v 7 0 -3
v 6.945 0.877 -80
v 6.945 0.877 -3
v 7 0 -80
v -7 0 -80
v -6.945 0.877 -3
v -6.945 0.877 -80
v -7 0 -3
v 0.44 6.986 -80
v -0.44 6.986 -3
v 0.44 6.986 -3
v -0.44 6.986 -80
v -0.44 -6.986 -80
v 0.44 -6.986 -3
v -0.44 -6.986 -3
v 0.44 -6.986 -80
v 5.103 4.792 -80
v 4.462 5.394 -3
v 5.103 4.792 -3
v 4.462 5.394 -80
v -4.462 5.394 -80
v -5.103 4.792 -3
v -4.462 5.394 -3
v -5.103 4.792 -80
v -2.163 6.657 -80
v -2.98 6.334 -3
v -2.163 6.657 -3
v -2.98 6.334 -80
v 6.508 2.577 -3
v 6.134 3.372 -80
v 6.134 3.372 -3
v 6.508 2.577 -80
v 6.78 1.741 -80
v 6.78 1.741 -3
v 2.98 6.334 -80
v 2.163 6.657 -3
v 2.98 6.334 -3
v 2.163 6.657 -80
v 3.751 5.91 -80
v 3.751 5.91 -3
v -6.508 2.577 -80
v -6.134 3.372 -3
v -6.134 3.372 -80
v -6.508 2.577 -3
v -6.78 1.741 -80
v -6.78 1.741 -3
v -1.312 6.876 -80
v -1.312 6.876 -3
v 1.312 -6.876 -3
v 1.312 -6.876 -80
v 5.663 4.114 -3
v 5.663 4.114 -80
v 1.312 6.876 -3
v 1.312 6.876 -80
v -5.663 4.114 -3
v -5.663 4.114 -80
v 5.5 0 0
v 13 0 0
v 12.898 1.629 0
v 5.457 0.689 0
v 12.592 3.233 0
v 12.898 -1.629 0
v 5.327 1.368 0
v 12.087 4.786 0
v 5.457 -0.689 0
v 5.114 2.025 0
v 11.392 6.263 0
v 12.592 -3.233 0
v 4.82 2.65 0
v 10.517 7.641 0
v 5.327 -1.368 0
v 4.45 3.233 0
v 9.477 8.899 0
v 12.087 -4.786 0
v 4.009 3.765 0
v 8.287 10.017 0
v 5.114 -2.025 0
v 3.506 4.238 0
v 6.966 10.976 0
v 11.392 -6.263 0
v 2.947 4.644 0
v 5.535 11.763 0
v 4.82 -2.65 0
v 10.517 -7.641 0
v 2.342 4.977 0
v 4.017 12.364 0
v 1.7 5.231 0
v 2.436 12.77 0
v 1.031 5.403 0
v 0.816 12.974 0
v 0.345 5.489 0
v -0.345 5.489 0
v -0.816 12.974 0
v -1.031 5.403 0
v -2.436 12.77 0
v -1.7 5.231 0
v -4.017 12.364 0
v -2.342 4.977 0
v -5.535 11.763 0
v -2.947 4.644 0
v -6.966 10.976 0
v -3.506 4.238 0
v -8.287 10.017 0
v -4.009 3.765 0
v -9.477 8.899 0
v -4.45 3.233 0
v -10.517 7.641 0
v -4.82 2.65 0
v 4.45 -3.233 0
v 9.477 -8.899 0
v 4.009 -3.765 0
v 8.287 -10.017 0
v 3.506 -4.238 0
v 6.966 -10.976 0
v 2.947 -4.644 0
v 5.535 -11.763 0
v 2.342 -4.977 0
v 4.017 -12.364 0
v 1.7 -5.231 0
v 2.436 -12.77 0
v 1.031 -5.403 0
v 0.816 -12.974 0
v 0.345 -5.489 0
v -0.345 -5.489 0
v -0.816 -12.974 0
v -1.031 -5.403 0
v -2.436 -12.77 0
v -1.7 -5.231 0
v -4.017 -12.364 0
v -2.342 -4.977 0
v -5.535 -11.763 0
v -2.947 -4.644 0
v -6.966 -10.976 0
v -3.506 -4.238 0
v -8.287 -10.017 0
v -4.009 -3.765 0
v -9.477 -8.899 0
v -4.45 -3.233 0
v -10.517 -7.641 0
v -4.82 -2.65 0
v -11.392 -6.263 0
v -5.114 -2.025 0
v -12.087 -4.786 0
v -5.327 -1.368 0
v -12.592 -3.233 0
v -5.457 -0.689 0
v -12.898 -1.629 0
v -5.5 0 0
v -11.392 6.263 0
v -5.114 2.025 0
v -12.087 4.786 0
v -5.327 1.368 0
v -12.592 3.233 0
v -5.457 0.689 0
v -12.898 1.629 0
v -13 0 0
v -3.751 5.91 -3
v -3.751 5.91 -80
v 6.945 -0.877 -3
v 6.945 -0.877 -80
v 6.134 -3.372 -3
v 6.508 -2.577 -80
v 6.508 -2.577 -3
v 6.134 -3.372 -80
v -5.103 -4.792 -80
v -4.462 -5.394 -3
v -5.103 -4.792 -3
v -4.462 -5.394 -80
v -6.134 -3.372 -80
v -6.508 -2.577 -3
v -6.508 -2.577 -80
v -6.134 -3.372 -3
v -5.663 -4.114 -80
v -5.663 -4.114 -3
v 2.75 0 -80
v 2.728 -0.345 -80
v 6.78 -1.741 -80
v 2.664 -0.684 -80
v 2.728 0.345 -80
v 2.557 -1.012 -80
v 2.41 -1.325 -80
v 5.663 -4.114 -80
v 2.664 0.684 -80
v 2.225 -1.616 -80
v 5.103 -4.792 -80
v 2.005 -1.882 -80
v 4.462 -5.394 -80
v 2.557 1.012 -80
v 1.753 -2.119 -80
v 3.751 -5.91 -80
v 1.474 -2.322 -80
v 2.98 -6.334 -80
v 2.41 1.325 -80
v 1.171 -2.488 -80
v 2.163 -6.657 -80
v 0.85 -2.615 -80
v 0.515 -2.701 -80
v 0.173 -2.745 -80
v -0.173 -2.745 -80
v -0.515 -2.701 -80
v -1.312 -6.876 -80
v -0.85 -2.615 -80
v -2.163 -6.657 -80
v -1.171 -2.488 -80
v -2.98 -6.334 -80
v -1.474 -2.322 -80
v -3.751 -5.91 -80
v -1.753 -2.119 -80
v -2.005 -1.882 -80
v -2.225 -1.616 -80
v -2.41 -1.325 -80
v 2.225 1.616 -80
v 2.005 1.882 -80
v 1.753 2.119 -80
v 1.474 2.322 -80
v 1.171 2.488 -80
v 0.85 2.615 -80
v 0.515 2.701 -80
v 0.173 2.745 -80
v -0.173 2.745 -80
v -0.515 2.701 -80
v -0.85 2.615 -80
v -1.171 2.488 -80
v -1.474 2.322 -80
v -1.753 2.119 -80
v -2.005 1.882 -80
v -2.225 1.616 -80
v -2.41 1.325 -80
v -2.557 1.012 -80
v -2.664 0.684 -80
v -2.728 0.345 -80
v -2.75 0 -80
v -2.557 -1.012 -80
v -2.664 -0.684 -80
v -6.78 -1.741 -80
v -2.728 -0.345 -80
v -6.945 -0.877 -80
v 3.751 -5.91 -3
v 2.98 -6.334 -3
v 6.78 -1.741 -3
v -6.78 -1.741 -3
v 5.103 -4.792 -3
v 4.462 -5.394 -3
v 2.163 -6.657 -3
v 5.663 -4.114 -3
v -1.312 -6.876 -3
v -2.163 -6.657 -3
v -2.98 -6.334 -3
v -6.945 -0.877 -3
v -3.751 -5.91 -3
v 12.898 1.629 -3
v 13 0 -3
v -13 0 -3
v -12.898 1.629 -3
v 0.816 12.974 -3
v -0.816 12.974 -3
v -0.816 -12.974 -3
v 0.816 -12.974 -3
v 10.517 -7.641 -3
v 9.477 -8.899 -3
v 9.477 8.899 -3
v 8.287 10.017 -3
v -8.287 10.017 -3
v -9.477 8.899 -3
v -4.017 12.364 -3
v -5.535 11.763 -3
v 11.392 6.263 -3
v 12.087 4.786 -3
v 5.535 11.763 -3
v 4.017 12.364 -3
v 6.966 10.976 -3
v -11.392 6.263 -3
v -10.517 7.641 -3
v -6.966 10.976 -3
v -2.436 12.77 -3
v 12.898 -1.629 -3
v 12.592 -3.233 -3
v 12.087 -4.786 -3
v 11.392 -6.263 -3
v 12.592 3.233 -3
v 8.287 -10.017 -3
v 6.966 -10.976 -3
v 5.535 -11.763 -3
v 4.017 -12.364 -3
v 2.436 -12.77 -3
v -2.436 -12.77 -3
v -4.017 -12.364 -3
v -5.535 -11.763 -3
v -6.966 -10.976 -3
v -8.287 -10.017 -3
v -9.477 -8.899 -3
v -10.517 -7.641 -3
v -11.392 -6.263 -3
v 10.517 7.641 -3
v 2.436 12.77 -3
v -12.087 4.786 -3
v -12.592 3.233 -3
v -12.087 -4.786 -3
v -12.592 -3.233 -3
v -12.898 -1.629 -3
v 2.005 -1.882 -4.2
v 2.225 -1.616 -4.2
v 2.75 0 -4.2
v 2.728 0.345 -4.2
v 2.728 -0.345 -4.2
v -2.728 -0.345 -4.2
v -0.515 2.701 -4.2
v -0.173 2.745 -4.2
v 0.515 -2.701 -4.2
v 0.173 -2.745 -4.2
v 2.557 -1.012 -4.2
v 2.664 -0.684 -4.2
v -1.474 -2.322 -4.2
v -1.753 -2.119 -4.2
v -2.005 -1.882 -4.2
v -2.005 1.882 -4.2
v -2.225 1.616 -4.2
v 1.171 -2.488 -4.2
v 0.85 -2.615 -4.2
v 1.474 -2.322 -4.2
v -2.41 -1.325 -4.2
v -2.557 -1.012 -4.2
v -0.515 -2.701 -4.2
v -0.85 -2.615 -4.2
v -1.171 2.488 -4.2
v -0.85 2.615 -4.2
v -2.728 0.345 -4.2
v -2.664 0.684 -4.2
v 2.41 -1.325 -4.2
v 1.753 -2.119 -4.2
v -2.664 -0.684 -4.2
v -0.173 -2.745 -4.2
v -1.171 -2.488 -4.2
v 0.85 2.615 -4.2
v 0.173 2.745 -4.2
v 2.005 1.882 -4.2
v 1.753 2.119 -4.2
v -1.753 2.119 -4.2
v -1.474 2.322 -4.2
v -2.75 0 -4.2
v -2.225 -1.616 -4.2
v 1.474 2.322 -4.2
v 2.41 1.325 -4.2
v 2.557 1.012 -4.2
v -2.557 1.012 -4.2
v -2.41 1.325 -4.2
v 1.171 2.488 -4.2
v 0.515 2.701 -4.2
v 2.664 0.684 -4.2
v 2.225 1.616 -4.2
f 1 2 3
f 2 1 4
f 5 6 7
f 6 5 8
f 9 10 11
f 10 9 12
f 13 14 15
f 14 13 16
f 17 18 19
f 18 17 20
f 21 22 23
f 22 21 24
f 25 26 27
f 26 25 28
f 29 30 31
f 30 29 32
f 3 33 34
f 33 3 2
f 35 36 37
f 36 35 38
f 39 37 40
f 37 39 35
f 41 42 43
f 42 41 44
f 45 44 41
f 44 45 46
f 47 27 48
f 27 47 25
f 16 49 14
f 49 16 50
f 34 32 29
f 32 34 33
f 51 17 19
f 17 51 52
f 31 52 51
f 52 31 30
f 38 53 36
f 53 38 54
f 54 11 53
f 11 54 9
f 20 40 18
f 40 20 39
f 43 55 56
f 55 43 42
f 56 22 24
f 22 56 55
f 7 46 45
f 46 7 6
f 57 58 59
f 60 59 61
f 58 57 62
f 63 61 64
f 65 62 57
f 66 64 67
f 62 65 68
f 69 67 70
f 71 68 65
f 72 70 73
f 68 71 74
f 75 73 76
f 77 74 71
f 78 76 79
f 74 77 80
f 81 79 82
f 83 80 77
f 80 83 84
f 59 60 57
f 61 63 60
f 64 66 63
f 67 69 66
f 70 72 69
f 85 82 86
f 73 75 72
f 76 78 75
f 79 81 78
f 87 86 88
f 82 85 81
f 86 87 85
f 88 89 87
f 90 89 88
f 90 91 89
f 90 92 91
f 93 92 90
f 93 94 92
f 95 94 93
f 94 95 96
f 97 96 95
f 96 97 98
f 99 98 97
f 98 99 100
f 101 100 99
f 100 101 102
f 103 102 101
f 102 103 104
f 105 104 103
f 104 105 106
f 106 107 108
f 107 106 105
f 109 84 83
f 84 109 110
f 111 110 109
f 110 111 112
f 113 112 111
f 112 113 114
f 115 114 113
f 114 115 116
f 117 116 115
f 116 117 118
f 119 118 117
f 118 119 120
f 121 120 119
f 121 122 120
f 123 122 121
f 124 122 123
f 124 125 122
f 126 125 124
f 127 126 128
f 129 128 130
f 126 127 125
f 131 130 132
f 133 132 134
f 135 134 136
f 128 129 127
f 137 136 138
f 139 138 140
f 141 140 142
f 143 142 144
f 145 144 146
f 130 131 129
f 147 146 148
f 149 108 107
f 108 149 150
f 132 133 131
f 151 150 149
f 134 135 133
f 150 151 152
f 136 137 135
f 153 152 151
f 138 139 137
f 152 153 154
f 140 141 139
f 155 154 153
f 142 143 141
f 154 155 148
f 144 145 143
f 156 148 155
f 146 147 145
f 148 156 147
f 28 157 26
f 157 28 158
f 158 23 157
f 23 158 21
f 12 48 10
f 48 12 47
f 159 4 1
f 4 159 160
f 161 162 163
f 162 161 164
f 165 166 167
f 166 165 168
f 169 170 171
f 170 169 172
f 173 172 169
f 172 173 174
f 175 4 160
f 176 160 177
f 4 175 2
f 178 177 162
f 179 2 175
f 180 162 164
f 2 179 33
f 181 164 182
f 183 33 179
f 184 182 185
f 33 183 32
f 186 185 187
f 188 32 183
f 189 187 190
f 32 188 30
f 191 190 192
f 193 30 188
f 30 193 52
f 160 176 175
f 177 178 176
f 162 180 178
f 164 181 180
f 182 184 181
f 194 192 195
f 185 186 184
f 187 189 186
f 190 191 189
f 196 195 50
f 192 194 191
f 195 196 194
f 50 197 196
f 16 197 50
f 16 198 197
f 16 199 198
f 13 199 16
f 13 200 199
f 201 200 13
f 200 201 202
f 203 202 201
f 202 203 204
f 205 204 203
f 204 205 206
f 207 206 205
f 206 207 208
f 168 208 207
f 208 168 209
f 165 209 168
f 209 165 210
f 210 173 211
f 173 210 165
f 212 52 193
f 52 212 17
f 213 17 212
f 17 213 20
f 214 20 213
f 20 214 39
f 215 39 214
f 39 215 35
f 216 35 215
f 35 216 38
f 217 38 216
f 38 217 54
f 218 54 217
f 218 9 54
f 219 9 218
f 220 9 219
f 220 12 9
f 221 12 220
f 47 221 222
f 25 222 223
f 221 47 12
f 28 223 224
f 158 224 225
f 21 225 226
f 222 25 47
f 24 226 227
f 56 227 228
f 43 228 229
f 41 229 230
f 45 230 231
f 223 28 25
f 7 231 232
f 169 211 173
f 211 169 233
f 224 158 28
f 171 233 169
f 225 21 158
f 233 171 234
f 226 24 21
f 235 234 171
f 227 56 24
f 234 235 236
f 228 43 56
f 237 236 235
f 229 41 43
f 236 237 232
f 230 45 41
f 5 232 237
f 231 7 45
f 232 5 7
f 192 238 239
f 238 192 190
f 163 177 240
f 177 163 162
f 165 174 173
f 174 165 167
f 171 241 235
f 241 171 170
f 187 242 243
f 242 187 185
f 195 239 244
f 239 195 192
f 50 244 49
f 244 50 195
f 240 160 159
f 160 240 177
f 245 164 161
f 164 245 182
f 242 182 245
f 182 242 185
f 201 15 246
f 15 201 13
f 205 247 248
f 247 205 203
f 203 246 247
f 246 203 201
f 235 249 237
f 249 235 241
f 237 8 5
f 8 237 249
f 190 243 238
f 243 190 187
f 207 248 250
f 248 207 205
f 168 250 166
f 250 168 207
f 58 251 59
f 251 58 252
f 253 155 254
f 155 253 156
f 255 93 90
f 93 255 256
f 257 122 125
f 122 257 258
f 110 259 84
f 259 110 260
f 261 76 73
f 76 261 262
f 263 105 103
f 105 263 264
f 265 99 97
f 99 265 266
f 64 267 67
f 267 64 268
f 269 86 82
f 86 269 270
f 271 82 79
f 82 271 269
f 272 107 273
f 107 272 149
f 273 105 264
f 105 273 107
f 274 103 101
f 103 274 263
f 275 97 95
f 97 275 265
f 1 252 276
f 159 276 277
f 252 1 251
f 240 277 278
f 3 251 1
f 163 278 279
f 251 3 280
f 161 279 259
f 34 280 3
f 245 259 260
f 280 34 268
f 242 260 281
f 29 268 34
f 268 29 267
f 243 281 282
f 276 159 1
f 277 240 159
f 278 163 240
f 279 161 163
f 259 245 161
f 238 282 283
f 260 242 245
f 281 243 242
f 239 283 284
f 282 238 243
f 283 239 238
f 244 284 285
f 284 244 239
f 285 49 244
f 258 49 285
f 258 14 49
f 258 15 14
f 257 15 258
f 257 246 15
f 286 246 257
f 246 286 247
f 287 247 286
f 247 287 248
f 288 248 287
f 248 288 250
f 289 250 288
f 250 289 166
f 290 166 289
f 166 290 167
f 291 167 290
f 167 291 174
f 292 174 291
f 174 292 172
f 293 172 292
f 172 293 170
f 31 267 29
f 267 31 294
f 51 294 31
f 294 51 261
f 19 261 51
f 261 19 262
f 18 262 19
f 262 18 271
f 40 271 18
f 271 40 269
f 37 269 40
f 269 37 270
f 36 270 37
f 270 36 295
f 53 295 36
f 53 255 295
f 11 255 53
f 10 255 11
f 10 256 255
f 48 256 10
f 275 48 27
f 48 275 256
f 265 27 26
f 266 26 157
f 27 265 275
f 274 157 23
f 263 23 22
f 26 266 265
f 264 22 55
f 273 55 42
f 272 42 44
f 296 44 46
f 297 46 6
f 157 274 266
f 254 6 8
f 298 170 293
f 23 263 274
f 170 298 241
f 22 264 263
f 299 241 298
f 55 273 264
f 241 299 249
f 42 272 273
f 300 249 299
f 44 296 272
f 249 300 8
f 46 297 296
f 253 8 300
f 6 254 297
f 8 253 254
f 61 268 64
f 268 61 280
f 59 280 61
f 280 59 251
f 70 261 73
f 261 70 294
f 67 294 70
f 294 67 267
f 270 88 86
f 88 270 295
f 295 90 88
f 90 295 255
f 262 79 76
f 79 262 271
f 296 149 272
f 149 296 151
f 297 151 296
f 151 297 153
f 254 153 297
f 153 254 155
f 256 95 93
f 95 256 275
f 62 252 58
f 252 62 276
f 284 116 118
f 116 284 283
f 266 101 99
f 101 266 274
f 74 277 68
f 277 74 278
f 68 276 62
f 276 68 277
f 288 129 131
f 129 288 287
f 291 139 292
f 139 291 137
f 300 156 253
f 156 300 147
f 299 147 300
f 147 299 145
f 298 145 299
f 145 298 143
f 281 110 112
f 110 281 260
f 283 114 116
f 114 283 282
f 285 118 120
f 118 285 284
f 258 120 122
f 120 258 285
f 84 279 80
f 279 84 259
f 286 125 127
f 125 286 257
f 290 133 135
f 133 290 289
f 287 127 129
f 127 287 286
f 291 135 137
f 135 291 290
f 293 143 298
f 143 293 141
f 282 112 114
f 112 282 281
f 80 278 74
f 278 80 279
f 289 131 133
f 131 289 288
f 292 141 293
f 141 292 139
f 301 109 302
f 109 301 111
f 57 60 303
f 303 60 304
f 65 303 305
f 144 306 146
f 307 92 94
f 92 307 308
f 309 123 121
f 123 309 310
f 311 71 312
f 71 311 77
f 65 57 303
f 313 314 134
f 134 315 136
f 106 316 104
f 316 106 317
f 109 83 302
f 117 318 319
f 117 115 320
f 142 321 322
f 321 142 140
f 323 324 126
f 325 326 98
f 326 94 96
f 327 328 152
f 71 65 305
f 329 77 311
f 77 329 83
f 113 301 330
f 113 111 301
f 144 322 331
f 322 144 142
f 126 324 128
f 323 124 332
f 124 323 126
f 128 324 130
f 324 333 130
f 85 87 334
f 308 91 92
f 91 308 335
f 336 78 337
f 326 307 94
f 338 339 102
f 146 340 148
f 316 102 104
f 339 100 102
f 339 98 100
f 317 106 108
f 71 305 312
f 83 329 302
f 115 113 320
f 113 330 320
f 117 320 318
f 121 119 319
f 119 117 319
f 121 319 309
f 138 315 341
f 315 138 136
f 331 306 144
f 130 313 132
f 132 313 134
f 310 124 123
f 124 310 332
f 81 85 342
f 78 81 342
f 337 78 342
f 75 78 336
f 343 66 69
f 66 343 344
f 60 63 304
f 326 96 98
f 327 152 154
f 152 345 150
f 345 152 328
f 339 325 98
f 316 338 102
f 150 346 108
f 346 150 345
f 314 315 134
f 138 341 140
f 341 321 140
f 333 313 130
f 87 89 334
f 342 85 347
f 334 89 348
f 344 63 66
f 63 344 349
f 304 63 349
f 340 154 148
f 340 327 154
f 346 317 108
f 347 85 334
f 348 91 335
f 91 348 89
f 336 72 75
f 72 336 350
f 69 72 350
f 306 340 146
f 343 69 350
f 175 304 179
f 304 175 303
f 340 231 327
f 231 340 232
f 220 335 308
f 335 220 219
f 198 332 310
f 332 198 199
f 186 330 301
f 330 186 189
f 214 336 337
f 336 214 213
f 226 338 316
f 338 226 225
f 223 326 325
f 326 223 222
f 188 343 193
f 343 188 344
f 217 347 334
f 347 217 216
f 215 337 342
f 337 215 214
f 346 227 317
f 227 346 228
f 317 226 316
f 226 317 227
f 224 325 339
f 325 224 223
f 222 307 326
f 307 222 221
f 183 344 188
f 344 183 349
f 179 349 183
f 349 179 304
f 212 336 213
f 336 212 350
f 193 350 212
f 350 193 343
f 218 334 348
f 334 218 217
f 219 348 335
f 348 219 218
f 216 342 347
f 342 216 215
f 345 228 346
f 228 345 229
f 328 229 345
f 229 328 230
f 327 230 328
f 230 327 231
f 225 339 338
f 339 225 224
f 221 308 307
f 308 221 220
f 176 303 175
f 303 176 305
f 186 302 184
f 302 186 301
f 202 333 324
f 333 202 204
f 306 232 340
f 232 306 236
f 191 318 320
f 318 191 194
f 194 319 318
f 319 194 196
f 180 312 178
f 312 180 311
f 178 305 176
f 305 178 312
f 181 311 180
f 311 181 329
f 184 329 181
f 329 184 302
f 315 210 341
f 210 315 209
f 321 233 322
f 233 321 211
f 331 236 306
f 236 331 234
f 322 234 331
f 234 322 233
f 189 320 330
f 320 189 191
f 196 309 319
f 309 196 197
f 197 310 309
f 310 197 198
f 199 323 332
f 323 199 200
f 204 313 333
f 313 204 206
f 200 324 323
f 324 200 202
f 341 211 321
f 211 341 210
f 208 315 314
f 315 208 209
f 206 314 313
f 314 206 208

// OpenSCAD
$fn = 50;


difference() {
	union() {
		translate(v = [0, 0, -80.0000000000]) {
			cylinder(h = 80, r = 7.0000000000);
		}
		translate(v = [0, 0, -3.0000000000]) {
			cylinder(h = 3, r = 13.0000000000);
		}
	}
	union() {
		translate(v = [0, 0, 0]) {
			rotate(a = [0, 0, 0]) {
				difference() {
					union() {
						#translate(v = [0, 0, -80.0000000000]) {
							cylinder(h = 80, r = 2.2500000000);
						}
						#translate(v = [0, 0, -4.2000000000]) {
							cylinder(h = 4.2000000000, r1 = 2.7500000000, r2 = 5.5000000000);
						}
						#translate(v = [0, 0, -80.0000000000]) {
							cylinder(h = 80, r = 2.7500000000);
						}
						#translate(v = [0, 0, -80.0000000000]) {
							cylinder(h = 80, r = 2.2500000000);
						}
					}
					union();
				}
			}
		}
	}
}
